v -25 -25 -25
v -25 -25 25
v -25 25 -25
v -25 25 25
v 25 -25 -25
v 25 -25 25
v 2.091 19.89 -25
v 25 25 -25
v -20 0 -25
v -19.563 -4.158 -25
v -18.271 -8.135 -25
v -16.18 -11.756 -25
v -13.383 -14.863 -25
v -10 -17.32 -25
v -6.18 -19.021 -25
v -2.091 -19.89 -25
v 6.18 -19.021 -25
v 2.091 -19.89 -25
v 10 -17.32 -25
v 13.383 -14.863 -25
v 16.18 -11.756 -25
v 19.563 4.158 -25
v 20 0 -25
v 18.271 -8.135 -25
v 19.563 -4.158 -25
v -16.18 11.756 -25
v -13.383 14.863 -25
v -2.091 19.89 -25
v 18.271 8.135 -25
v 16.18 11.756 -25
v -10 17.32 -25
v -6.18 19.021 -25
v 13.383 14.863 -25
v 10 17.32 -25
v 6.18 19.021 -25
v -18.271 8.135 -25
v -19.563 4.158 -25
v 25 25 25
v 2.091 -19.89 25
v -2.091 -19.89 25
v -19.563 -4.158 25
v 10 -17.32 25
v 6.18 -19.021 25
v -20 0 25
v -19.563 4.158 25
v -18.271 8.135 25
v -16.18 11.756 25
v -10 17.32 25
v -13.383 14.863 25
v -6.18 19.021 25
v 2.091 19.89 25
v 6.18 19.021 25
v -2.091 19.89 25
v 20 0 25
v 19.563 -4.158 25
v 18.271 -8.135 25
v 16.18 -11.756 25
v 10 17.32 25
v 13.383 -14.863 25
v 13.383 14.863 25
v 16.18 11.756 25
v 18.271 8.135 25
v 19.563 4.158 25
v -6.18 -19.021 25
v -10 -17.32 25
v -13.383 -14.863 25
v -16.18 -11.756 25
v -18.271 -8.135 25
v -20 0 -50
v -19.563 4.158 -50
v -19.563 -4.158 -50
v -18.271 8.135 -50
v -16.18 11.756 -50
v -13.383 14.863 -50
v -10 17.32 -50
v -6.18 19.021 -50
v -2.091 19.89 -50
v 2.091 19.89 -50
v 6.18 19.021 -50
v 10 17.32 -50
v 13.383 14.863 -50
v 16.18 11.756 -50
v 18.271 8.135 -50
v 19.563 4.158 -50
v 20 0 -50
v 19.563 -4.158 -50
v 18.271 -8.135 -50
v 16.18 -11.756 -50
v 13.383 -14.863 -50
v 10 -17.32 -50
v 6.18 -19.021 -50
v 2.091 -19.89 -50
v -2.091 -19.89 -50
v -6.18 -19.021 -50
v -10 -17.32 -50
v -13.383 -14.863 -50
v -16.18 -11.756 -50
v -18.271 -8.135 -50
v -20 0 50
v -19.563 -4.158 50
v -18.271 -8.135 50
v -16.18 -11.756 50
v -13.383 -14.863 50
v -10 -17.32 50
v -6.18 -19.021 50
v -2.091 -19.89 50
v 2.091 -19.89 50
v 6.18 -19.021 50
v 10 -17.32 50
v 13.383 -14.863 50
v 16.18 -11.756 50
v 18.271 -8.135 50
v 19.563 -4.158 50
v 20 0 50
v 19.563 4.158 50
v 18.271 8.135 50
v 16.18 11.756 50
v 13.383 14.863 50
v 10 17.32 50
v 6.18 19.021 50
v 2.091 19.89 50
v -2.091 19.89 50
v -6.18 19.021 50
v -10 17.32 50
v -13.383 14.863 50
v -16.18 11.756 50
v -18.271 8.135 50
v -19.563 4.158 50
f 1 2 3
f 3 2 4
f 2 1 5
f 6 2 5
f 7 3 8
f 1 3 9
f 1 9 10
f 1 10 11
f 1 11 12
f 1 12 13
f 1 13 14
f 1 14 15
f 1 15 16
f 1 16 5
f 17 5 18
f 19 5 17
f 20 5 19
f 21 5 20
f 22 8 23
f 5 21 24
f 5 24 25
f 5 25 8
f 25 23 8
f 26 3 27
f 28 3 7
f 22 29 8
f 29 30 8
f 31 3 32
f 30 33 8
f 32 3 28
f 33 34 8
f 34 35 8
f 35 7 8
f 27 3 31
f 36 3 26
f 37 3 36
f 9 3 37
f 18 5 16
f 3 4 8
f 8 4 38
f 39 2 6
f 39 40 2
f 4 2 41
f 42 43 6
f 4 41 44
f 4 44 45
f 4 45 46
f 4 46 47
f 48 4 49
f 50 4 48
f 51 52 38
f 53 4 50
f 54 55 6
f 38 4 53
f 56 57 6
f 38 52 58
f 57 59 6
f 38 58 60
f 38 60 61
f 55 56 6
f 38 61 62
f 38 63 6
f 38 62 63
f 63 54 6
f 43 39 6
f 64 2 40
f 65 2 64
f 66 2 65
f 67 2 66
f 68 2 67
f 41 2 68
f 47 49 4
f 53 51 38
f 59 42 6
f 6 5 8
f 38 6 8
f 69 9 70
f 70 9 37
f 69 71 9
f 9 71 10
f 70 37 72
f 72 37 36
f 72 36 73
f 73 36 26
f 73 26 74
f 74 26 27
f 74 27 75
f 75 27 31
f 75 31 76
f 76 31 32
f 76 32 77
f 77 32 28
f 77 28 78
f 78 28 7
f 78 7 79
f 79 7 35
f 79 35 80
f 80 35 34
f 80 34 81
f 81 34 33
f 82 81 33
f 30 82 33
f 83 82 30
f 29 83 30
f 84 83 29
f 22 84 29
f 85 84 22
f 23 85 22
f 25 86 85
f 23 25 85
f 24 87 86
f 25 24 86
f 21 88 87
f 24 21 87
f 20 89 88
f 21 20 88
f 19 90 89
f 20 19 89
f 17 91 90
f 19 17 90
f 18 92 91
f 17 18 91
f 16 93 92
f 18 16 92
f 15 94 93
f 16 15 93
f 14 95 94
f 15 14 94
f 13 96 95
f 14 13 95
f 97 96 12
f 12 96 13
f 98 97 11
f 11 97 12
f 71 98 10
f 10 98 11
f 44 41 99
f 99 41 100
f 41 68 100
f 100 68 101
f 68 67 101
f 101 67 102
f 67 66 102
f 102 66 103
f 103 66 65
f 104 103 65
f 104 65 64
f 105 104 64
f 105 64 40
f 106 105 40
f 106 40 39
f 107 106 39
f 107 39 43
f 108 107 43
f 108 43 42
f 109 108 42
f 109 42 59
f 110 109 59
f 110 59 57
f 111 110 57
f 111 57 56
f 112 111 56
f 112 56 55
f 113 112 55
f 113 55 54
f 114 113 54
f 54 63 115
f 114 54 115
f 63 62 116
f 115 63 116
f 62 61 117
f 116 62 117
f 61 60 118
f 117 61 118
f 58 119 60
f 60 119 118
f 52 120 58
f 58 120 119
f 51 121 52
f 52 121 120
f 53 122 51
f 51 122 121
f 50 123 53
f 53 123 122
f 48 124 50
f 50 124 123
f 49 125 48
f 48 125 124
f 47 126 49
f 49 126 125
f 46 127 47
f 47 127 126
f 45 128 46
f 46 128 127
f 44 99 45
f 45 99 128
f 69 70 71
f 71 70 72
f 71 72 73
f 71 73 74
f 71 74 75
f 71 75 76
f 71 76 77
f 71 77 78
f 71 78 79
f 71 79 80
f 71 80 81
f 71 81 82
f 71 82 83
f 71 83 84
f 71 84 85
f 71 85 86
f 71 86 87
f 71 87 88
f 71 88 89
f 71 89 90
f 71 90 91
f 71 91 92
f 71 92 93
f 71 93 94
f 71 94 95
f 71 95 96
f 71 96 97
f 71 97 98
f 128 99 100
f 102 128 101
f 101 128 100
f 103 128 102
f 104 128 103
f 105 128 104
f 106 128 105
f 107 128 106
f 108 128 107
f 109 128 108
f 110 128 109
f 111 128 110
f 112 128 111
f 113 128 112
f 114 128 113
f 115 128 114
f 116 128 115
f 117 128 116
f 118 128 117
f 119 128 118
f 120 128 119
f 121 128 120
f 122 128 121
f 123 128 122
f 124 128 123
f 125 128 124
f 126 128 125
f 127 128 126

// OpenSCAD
union() {
    cube(50, center=true);
    cylinder(r=20, h=100, center=true);
}
